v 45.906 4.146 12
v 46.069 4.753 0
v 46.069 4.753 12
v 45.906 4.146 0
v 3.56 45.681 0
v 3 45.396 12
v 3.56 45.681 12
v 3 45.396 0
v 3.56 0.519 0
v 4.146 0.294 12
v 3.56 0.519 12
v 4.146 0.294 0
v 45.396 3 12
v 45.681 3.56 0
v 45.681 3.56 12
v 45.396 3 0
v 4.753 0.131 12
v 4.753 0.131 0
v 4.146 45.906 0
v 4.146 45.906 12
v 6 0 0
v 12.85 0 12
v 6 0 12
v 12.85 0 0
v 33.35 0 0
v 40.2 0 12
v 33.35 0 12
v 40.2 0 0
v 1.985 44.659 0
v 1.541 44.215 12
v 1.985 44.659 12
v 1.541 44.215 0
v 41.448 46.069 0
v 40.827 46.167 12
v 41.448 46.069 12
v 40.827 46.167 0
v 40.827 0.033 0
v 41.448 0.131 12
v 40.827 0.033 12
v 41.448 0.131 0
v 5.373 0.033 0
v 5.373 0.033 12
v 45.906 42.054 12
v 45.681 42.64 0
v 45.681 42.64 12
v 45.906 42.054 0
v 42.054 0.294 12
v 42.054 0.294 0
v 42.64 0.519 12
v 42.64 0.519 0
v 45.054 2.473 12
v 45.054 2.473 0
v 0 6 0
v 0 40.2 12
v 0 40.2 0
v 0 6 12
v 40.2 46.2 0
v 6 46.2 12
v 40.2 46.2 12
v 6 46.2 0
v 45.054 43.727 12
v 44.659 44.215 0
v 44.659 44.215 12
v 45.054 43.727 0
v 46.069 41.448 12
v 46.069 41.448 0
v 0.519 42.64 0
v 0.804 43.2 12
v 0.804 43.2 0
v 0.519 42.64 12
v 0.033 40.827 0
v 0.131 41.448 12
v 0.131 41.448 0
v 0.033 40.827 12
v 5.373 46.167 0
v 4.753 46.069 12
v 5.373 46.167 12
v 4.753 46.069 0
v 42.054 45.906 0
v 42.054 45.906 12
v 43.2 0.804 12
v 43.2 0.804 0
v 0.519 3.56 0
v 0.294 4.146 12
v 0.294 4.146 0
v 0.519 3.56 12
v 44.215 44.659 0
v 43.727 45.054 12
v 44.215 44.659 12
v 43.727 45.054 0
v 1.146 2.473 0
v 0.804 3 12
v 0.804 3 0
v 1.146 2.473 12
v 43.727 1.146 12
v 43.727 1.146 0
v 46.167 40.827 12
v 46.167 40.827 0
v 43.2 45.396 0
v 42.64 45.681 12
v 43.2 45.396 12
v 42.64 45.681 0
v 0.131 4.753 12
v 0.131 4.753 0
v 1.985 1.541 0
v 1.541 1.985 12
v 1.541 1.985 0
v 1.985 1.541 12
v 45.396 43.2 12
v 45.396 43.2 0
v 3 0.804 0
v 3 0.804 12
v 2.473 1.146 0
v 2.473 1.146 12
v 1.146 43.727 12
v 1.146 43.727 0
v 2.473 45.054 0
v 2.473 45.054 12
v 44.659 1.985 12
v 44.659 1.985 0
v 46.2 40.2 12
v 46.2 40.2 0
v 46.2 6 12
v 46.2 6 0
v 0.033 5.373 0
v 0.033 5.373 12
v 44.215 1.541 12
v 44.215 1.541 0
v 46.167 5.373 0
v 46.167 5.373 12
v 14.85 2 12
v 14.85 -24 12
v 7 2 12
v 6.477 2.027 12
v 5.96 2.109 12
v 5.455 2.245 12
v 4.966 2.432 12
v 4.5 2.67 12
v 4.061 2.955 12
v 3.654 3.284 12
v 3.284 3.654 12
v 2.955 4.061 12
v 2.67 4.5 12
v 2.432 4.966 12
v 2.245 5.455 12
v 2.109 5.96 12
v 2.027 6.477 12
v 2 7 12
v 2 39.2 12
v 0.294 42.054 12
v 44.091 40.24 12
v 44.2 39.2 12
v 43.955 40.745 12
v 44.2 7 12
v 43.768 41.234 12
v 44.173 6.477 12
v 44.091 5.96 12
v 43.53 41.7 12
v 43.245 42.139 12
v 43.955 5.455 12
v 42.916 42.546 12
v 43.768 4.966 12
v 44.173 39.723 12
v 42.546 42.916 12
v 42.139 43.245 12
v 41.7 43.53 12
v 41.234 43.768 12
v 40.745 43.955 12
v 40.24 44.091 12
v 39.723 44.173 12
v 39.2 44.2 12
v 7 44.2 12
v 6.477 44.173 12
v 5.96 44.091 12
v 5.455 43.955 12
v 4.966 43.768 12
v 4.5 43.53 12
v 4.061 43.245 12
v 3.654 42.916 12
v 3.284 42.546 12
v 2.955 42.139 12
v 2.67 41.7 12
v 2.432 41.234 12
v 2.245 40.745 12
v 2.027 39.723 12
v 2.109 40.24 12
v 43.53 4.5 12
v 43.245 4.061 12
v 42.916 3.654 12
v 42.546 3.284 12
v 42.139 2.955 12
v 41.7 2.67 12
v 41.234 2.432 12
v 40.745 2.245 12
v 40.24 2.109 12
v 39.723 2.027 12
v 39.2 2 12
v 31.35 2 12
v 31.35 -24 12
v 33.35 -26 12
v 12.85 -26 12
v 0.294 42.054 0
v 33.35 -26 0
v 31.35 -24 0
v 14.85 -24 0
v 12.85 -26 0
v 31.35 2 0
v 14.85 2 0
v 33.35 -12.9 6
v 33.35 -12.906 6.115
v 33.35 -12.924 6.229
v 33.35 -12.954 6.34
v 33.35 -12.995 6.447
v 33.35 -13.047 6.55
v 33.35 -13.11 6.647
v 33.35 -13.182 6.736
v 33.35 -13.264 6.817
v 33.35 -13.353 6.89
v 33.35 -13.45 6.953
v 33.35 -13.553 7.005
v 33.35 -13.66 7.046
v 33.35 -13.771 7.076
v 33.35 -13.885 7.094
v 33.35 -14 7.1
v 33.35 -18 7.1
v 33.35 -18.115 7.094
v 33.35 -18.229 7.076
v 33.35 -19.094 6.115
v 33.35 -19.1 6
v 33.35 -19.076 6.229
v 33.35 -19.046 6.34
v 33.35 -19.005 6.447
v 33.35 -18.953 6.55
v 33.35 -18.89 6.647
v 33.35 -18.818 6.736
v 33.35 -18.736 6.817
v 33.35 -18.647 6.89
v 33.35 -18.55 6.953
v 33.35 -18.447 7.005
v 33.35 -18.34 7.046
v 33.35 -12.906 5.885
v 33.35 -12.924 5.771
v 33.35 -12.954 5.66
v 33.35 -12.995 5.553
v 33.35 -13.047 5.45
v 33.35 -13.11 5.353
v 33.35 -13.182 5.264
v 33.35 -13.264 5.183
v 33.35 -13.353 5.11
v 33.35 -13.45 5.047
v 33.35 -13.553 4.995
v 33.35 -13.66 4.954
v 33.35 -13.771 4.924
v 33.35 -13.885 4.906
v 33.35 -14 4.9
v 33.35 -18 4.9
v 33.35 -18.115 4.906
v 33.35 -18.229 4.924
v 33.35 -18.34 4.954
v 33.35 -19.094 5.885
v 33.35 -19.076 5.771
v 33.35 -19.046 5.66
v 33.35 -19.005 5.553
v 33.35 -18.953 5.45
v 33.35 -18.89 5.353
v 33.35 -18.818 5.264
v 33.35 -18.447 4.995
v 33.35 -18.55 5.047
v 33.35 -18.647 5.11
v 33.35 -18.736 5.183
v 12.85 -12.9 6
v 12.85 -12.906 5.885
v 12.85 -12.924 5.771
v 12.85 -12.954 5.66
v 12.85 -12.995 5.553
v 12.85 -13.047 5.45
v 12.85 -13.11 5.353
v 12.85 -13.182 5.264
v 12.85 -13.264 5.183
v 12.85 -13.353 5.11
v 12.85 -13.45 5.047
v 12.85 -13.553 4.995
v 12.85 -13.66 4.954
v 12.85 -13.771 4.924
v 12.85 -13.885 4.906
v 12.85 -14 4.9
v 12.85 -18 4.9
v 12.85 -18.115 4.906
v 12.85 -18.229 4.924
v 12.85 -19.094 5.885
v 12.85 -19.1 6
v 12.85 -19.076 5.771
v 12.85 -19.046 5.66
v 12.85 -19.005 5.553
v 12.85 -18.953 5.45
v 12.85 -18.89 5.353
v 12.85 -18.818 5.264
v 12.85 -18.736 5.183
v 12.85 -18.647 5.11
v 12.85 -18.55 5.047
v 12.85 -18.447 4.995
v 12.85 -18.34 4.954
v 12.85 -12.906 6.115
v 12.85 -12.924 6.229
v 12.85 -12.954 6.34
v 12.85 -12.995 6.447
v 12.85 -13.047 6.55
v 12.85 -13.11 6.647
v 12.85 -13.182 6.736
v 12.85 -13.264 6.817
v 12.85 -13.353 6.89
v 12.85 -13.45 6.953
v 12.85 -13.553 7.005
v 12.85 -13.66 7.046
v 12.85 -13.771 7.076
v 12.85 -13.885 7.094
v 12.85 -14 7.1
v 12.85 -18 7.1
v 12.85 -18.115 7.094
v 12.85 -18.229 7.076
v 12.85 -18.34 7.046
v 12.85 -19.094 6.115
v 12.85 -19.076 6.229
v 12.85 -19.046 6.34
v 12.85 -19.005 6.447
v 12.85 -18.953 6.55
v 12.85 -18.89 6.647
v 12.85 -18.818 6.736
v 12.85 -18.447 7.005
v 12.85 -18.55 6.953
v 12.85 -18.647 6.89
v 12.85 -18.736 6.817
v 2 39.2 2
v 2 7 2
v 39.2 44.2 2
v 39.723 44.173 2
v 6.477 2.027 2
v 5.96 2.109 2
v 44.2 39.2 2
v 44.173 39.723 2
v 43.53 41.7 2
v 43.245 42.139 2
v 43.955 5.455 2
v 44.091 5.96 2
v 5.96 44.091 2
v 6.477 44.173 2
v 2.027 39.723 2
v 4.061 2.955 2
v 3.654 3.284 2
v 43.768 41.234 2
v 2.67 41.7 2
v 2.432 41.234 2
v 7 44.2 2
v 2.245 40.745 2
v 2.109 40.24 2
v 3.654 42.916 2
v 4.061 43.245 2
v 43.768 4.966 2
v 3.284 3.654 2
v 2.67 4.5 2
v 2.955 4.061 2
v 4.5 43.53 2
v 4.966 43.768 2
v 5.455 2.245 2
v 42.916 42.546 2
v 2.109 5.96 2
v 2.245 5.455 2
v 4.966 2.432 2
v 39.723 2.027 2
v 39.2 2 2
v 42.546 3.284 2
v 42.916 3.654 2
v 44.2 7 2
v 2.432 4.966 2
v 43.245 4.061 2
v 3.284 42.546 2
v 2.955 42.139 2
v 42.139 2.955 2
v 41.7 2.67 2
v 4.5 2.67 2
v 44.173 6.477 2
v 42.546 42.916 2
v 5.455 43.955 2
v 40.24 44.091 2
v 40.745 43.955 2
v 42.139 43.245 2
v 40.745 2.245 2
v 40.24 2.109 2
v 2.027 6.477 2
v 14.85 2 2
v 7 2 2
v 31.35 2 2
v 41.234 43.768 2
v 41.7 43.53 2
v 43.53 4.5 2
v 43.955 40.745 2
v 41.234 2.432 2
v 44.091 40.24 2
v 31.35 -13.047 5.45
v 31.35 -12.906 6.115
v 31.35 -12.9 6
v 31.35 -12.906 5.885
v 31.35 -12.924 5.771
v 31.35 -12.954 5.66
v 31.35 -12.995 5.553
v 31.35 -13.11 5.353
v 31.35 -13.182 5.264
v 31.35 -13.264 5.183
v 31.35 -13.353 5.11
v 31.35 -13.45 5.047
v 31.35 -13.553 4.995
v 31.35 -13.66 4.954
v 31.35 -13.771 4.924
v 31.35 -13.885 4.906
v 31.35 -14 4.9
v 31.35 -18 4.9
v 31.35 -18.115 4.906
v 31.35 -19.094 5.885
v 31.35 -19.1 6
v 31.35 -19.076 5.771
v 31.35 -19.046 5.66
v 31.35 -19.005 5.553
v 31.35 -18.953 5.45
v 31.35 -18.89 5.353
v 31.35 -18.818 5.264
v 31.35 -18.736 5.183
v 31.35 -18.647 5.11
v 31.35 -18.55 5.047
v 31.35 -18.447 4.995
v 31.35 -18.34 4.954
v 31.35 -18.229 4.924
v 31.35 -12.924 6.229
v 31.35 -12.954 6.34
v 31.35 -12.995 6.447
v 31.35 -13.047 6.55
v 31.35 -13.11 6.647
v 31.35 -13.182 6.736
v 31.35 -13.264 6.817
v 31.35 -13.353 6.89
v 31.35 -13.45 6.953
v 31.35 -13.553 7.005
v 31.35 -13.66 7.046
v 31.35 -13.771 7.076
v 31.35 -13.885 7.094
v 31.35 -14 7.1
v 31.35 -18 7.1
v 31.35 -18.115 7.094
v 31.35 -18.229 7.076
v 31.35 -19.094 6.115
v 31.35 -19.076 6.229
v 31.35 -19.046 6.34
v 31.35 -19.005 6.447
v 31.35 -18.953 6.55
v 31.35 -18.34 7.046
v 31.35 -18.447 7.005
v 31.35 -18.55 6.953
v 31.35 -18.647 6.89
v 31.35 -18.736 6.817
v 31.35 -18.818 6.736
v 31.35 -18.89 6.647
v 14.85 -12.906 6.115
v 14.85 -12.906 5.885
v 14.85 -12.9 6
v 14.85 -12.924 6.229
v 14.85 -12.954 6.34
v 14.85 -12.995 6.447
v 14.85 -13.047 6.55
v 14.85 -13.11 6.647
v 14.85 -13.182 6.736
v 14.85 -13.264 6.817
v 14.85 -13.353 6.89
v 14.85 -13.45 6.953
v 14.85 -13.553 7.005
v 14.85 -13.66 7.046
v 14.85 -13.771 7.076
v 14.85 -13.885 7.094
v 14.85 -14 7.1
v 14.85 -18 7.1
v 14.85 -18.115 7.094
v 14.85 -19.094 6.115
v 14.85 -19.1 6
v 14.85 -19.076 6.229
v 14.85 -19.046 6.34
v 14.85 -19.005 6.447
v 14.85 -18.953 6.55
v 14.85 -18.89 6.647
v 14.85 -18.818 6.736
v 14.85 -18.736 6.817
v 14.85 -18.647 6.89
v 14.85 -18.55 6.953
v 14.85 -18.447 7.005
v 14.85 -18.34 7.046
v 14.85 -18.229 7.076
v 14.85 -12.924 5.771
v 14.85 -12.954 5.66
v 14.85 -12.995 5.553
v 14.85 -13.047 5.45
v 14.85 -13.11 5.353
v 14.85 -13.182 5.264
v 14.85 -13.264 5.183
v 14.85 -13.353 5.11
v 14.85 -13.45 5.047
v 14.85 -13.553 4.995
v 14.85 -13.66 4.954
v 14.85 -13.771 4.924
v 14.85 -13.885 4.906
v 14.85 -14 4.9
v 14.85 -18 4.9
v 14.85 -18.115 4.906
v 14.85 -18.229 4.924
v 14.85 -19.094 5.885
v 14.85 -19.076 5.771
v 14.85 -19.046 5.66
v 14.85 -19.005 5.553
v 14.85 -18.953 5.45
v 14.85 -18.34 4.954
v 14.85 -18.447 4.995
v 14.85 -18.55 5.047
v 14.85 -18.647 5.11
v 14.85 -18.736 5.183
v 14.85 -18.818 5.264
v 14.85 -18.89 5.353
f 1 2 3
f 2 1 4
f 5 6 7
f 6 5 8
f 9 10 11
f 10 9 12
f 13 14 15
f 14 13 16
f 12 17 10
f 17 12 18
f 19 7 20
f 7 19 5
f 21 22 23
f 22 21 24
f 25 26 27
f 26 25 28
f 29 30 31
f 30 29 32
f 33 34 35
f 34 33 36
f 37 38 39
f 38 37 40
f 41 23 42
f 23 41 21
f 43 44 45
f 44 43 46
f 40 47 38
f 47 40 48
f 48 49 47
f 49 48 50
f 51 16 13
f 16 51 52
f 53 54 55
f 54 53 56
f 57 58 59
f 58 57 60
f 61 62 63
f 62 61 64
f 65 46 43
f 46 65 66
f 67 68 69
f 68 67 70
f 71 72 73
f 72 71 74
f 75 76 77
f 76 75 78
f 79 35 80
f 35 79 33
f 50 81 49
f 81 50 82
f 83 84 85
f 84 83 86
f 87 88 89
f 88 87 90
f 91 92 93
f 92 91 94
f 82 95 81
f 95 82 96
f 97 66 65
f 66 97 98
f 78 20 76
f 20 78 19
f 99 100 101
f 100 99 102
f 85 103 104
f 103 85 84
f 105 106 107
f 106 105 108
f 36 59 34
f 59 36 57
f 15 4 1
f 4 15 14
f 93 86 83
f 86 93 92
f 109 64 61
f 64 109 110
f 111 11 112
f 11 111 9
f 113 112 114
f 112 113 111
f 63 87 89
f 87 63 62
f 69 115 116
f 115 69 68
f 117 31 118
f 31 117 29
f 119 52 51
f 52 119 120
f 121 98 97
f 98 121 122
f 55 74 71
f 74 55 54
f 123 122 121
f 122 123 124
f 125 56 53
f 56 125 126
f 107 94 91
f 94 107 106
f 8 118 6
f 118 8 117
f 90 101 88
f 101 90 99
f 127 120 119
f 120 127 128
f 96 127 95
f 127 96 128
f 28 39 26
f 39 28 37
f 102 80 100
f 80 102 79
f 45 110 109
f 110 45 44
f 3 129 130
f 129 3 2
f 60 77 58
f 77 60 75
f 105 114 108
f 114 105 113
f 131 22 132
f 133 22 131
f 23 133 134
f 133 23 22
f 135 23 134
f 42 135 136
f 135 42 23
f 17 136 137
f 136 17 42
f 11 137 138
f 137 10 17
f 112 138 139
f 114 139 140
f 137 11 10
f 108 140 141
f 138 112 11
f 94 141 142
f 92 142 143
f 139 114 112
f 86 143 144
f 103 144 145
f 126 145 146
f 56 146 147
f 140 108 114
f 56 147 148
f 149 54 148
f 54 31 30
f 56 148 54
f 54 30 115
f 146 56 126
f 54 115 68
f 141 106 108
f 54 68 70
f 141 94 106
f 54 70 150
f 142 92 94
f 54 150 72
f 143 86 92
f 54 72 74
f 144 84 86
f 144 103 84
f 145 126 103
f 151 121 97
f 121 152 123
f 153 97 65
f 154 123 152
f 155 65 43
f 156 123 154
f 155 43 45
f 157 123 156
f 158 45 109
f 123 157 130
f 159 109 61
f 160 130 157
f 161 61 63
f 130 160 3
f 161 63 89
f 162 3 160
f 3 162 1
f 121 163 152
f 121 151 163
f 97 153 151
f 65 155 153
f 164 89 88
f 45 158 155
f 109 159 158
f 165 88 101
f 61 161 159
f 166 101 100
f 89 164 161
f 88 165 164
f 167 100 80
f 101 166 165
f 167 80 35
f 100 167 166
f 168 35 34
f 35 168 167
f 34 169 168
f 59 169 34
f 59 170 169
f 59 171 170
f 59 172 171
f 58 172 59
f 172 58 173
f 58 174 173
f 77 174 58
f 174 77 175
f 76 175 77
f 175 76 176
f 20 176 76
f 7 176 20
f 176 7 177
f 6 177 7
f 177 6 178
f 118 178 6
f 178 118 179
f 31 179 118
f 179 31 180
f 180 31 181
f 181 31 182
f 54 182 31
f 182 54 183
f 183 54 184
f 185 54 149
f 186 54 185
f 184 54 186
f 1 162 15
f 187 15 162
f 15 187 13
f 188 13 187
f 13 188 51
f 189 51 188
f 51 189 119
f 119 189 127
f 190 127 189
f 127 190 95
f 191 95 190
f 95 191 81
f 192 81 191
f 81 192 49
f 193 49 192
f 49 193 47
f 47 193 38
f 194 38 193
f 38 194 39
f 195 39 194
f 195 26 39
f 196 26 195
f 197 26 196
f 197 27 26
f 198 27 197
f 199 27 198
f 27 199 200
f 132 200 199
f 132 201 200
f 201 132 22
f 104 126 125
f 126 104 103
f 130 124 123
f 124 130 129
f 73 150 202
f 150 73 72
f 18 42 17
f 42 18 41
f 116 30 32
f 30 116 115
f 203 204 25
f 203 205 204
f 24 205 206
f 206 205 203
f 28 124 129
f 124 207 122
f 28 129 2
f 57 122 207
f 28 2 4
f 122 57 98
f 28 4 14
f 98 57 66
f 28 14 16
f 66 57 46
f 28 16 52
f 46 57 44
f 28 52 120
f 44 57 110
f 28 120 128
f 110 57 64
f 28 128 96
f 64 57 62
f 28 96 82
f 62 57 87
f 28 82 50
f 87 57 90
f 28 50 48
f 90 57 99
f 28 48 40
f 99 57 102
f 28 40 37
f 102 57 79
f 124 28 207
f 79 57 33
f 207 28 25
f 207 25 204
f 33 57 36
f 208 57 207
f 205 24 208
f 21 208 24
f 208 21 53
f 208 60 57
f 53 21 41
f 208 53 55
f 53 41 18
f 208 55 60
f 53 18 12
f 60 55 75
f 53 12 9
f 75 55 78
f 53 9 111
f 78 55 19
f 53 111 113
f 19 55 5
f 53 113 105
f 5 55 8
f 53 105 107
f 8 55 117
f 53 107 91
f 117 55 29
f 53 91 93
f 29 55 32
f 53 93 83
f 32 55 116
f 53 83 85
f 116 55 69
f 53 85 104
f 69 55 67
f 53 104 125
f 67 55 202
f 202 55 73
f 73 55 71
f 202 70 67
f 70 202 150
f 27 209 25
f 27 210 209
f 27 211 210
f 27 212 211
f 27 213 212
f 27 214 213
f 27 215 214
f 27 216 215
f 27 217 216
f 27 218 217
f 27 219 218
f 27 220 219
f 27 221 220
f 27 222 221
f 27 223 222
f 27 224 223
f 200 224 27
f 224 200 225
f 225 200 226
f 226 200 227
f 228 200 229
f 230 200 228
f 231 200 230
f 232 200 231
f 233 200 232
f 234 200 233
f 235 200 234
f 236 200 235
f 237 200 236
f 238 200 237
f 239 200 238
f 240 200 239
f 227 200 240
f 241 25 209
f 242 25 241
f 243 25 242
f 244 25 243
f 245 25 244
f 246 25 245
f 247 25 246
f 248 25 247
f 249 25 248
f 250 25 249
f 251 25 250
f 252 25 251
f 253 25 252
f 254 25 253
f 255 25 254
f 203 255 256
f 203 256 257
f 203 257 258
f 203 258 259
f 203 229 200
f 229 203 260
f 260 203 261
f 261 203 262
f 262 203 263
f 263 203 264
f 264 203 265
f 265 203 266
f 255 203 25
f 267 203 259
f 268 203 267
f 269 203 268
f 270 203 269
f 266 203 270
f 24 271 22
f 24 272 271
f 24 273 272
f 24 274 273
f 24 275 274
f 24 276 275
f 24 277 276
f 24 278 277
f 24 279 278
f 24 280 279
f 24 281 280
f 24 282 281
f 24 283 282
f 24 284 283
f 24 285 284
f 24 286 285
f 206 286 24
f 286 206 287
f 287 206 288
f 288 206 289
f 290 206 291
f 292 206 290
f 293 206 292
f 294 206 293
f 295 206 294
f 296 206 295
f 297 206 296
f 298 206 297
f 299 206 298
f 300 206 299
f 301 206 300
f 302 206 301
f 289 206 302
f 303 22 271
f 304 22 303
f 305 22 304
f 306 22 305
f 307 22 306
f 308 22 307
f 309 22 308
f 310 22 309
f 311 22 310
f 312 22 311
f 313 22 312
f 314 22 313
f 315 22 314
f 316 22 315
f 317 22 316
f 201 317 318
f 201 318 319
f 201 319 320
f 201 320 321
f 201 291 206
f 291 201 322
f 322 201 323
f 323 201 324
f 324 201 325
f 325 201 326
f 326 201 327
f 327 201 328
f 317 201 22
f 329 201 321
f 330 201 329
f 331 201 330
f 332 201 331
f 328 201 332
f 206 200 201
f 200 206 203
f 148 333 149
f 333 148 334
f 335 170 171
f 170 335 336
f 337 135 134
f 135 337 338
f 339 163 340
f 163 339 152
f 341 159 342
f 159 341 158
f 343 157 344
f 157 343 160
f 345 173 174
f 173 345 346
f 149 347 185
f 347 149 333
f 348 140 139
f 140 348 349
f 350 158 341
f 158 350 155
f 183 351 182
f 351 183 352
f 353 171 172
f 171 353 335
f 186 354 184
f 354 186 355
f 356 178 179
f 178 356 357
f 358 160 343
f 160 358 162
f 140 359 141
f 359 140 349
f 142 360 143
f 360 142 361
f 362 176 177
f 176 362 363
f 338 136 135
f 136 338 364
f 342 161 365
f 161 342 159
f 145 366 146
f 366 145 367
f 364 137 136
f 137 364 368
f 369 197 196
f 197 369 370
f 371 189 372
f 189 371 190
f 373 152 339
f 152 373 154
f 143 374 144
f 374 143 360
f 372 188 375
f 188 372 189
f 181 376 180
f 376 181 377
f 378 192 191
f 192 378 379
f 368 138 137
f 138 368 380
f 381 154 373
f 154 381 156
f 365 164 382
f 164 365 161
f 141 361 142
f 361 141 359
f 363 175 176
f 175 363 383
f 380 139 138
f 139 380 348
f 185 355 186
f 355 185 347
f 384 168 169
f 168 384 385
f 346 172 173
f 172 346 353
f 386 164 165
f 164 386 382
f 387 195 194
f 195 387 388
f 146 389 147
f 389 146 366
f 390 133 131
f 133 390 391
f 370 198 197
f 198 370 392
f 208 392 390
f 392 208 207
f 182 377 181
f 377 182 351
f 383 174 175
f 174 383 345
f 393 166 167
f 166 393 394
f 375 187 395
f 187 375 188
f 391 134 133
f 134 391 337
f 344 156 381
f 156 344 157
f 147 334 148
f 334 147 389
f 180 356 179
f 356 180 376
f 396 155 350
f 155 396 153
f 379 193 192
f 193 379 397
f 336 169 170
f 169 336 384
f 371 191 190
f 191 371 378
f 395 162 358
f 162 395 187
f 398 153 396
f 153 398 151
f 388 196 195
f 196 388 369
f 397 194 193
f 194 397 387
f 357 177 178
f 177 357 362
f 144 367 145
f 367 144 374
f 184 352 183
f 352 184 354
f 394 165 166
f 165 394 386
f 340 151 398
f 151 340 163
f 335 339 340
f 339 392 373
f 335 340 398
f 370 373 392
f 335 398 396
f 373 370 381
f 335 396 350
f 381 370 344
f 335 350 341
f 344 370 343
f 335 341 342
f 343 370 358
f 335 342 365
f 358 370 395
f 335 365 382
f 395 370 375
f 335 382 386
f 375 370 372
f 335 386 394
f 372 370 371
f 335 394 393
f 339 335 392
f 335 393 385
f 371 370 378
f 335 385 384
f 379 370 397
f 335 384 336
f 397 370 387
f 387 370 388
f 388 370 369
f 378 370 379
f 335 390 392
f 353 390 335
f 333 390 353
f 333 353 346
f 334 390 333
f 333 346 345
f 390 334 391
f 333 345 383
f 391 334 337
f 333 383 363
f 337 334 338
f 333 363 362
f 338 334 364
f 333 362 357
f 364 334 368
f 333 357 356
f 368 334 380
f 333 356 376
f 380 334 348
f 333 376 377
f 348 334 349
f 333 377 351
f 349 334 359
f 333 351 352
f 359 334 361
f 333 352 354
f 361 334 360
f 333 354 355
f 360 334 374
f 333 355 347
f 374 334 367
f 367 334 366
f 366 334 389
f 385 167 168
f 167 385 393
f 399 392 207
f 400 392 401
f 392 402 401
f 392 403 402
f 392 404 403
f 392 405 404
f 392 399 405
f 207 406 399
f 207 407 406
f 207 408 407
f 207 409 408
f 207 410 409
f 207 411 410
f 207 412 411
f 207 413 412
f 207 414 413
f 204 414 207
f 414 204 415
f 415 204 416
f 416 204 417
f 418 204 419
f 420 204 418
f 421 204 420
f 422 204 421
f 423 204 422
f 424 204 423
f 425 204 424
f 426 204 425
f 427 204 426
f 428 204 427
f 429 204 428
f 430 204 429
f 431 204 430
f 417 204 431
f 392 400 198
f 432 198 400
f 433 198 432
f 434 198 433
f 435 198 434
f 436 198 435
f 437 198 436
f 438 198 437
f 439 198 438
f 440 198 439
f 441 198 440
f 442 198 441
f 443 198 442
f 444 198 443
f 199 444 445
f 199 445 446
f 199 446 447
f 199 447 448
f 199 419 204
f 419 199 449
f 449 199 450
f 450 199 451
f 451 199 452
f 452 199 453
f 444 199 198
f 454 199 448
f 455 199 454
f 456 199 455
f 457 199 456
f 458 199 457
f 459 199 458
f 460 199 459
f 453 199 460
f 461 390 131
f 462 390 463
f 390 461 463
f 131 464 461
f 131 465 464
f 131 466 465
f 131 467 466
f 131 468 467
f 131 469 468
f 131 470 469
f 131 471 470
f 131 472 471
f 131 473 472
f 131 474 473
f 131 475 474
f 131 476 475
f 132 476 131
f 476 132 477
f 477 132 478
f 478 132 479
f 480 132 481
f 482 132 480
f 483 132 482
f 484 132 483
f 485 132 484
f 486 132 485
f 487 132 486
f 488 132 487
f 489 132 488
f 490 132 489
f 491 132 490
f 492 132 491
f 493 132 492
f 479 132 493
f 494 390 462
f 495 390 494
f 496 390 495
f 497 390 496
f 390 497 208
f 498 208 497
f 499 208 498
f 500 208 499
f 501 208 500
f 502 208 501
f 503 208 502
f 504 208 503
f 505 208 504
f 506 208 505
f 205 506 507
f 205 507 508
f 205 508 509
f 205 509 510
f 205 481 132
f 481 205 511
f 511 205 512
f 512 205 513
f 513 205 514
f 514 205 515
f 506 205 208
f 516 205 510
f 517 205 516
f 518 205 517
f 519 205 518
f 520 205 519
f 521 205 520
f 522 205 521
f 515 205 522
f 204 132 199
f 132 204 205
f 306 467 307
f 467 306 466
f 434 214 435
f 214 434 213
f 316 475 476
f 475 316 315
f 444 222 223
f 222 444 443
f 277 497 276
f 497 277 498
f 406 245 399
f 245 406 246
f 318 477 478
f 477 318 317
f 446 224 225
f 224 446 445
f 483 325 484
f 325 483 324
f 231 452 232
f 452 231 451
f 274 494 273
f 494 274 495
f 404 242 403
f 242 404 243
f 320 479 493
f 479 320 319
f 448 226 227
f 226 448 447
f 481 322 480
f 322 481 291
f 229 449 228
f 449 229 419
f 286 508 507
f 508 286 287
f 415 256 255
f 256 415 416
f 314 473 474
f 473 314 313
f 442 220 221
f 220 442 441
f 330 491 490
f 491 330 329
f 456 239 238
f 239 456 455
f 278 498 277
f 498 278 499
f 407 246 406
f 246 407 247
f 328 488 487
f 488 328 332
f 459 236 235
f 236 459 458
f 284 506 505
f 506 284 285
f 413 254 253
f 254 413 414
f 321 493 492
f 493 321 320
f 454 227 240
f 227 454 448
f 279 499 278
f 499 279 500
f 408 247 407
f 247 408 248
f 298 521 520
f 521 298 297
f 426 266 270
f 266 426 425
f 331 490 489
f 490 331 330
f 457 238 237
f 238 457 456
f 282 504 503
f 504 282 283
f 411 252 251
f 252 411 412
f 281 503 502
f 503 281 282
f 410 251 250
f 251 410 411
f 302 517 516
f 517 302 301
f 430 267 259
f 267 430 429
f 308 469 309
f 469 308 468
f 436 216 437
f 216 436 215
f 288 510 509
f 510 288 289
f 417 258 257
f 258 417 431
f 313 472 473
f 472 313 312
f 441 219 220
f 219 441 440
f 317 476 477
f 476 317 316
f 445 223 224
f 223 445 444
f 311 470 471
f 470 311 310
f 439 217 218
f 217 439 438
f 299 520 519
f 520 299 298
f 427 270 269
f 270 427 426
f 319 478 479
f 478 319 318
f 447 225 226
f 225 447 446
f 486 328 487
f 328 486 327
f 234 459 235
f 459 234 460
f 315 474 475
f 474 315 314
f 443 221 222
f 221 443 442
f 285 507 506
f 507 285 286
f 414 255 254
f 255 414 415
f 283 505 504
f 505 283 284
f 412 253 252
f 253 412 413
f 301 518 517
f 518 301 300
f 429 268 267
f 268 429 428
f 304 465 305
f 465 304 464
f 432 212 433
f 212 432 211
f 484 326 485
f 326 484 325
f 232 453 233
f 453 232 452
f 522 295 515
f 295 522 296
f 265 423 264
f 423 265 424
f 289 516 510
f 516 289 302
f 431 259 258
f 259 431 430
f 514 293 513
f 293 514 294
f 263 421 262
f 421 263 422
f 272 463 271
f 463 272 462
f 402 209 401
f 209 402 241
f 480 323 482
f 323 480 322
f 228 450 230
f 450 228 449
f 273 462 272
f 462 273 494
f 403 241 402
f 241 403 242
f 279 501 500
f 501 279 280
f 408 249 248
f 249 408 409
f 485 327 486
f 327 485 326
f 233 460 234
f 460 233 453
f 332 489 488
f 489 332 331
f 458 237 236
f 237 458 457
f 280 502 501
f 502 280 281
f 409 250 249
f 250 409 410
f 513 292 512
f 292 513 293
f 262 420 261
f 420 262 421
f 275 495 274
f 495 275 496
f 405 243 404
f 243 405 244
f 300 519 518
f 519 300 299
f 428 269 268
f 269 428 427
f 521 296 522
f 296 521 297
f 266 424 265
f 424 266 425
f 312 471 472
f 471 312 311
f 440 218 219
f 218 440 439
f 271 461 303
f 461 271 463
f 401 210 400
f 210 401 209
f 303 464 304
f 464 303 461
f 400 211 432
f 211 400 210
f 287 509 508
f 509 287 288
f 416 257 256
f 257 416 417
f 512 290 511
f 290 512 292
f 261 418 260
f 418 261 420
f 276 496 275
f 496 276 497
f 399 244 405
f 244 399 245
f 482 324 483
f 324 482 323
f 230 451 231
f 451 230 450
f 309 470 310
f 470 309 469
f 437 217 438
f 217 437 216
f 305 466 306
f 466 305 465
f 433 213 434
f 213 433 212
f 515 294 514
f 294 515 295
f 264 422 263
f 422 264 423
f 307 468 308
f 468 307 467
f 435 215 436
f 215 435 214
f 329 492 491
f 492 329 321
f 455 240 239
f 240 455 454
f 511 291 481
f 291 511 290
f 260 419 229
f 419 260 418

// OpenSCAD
/* Copyright (C) Peter Ivanov <ivanovp@gmail.com>, 2015 */
/* License: Creative Commons - Attribution - Non-commercial (CC BY-NC) /

/* [Global] */
motor_width = 42.2; // 42.4-gyel kicsit latya lett
wall_thickness = 2;
outer_width = motor_width + wall_thickness * 2;
base_height = wall_thickness;
height = base_height + 10; // + 10 pont jo
epsilon = 0.1;
cable_width = 16.5;
cable_length = 22;
r = 5;
protector_width = cable_width + wall_thickness * 2;
protector_length = cable_length + wall_thickness * 2 + r;
drill_diameter = 2.2;

$fn = 60;

difference()
{
    union()
    {
        rounded_cube(outer_width, outer_width, height, r + wall_thickness / 2);
        translate([outer_width / 2 - protector_width / 2, -protector_length + r, 0])
        {
            cube([protector_width, protector_length, height]);
            //rounded_cube(protector_width, protector_length, height, r + wall_thickness / 2);
        }
    }
    translate([wall_thickness, wall_thickness, base_height])
    {
        rounded_cube(motor_width, motor_width, height - base_height + epsilon, r);
    }
    translate([outer_width / 2 - cable_width / 2, -cable_length - wall_thickness, 0])
    {
        cube([cable_width, cable_length + wall_thickness * 2, height + epsilon]);
    }
    hull()
    {
        translate([0, -cable_length / 2 - wall_thickness * 1.5, height / 2]) 
        {
            rotate([0, 90, 0]) cylinder(d=drill_diameter, h=outer_width);
        }
        translate([0, -cable_length / 2 - wall_thickness * 3.5, height / 2]) 
        {
            rotate([0, 90, 0]) cylinder(d=drill_diameter, h=outer_width);
        }
    }
}

module rounded_cube(w, l, h, r)
{
    hull()
    {
     translate([0 + r, 0 + r, 0]) cylinder(r=r, h=h);
     translate([w - r, 0 + r, 0]) cylinder(r=r, h=h);
     translate([w - r, l - r, 0]) cylinder(r=r, h=h);
     translate([0 + r, l - r, 0]) cylinder(r=r, h=h);
    }
}

module hexagon(width, height, baseAngle) 
{
  bwidth = width / 1.75;
  for (angle = [baseAngle, baseAngle + 60, baseAngle + 120]) 
  {
      rotate([0, 0, angle]) cube([bwidth, width, height], true);
  }
}
